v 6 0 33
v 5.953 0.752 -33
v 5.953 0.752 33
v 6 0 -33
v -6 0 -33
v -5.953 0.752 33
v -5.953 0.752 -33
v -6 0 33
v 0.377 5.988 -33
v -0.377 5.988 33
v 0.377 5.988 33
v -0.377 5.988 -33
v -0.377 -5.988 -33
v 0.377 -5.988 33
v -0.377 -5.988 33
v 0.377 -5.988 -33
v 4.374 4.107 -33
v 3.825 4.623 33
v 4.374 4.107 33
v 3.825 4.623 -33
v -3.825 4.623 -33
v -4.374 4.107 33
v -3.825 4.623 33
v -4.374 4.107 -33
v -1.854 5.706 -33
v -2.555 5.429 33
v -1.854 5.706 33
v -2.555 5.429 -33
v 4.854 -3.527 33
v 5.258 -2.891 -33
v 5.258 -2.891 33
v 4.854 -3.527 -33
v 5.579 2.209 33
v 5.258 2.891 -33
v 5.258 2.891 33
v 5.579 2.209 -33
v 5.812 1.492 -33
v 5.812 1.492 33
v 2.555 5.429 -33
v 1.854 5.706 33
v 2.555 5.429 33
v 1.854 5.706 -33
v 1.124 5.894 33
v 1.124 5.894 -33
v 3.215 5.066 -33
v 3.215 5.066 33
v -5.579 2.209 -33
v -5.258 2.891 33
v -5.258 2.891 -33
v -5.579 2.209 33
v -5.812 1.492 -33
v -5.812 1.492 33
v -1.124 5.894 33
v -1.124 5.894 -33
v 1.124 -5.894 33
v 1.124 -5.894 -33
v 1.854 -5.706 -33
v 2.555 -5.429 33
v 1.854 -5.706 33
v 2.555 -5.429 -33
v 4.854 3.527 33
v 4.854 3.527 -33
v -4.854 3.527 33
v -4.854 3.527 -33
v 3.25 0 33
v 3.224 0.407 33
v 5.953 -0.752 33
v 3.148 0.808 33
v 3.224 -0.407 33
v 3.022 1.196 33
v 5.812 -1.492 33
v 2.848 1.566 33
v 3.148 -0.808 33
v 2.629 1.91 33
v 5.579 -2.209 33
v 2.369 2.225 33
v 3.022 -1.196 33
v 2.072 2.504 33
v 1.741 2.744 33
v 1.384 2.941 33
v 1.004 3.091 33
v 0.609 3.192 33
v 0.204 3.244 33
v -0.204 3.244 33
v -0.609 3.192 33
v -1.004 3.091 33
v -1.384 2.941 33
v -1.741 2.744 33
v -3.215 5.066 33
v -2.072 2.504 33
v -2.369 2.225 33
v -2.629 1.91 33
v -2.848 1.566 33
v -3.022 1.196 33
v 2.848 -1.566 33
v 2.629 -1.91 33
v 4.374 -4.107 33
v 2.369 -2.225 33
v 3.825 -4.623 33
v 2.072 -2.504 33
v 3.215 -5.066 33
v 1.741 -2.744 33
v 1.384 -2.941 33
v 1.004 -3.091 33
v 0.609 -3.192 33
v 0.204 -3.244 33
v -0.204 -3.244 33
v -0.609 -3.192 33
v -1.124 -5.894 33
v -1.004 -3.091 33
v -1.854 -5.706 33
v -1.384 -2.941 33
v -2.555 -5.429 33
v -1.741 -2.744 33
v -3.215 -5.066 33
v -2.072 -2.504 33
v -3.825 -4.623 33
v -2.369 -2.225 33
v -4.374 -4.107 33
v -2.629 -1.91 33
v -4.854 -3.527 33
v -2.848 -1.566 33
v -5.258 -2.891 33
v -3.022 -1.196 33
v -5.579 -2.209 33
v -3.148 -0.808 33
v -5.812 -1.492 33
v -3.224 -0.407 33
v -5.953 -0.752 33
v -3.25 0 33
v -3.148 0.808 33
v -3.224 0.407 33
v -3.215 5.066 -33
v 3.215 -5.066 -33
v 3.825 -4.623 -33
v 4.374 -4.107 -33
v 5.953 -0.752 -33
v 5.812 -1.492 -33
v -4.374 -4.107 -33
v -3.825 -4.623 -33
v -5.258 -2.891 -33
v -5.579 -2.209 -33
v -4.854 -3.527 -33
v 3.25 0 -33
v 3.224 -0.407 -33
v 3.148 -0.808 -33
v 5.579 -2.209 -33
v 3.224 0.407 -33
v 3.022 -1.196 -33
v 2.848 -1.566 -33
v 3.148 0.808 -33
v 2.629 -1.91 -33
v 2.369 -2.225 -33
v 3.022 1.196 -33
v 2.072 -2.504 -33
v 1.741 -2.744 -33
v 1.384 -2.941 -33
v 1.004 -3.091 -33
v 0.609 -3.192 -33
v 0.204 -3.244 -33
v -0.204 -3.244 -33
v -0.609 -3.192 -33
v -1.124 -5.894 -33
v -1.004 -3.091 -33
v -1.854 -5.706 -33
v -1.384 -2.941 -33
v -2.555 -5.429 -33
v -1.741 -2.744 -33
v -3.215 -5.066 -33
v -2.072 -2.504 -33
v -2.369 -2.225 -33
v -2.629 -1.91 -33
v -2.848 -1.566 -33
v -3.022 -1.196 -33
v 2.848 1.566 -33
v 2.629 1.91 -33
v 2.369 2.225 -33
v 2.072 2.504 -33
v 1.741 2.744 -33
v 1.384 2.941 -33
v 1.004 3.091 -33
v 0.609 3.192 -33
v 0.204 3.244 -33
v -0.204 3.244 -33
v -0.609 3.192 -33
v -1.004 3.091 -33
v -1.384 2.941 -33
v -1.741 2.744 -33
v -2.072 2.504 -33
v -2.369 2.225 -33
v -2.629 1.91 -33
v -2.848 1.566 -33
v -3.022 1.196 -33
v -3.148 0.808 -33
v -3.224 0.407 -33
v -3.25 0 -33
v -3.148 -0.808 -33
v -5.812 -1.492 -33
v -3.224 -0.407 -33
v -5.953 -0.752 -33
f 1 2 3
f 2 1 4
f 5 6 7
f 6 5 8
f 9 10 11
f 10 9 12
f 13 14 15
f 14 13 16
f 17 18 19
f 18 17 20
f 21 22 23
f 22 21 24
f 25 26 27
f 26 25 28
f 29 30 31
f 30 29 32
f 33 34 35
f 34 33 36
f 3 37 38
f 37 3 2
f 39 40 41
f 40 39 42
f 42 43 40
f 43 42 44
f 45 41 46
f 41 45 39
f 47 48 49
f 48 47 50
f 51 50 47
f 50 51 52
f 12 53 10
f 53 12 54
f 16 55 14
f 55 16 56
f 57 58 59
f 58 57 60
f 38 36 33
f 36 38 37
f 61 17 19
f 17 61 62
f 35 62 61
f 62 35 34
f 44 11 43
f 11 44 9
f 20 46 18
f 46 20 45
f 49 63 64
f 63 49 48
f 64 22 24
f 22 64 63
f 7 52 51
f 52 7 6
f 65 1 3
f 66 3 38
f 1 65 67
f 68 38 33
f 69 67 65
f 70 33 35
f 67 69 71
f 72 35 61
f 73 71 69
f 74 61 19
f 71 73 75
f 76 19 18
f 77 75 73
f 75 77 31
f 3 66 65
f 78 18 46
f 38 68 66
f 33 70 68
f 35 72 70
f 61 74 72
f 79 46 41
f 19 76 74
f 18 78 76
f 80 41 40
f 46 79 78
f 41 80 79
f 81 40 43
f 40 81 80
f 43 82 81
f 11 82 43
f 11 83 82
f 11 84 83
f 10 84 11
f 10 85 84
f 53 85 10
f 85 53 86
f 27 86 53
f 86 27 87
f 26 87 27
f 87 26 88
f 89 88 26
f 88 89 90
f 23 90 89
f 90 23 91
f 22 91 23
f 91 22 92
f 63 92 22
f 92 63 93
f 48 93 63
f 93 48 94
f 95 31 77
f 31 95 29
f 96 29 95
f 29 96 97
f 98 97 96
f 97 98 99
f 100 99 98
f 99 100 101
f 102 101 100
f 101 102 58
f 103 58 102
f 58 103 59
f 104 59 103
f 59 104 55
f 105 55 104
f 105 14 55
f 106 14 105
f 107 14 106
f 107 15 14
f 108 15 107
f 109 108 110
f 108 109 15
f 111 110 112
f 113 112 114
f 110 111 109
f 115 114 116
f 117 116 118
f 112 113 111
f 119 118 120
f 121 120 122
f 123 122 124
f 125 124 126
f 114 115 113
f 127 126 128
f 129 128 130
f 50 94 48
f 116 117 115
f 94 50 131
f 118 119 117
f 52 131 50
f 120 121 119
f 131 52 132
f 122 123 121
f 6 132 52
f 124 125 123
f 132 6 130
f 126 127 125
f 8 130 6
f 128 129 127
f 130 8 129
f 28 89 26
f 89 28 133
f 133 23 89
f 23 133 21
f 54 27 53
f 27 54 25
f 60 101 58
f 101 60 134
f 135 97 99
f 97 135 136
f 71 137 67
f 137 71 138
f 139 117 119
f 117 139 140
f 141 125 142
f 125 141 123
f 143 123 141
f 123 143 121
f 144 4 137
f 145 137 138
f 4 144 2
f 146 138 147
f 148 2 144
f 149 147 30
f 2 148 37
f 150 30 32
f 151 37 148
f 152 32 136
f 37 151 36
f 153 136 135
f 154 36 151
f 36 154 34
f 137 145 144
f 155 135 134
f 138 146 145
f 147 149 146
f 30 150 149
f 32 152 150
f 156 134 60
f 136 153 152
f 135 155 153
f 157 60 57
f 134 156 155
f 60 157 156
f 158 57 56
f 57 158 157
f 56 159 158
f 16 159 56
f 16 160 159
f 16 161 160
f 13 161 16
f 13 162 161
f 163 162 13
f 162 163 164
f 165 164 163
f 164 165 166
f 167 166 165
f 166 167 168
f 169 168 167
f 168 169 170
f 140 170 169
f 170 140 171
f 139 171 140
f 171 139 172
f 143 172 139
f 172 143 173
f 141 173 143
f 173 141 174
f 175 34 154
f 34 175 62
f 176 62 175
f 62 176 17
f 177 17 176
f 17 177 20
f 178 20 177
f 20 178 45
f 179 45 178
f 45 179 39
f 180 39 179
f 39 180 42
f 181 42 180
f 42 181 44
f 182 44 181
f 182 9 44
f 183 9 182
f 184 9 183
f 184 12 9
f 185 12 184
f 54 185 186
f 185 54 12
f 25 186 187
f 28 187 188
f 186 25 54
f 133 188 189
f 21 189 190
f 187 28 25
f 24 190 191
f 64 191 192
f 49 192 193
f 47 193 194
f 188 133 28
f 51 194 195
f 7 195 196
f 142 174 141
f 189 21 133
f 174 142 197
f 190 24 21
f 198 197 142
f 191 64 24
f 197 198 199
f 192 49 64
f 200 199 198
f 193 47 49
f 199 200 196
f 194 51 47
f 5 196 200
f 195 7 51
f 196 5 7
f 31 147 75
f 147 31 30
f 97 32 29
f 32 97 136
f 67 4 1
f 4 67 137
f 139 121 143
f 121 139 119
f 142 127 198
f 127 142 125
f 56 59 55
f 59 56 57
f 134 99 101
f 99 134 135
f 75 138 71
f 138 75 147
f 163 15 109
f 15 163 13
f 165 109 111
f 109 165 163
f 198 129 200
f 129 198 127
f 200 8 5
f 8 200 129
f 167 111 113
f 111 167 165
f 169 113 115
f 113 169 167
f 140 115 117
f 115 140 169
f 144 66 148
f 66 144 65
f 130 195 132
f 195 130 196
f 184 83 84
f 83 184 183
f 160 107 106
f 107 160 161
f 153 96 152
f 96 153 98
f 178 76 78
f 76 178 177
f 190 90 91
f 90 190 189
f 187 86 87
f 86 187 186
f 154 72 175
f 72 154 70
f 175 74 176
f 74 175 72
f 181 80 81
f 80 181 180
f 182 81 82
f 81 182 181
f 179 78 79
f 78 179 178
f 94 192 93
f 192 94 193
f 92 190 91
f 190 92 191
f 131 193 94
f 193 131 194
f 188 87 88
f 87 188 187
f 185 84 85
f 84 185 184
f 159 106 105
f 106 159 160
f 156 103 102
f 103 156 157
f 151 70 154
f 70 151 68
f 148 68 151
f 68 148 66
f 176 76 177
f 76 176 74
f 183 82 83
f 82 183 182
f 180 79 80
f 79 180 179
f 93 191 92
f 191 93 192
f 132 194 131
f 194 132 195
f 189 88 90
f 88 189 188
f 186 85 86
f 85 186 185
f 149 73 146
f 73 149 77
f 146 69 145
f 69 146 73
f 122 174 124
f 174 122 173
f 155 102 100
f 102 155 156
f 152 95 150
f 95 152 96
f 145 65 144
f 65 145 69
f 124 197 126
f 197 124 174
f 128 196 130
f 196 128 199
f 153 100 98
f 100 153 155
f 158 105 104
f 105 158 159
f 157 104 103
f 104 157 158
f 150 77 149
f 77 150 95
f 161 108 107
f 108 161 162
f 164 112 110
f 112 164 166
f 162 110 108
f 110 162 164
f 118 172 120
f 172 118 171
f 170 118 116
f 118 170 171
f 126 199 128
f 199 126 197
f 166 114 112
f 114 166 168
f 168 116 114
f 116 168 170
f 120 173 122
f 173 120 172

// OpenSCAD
$fn = 50;


difference() {
	union() {
		translate(v = [0, 0, -33.0000000000]) {
			cylinder(h = 66, r = 6.0000000000);
		}
	}
	union() {
		translate(v = [0, 0, -100.0000000000]) {
			cylinder(h = 200, r = 3.2500000000);
		}
	}
}
